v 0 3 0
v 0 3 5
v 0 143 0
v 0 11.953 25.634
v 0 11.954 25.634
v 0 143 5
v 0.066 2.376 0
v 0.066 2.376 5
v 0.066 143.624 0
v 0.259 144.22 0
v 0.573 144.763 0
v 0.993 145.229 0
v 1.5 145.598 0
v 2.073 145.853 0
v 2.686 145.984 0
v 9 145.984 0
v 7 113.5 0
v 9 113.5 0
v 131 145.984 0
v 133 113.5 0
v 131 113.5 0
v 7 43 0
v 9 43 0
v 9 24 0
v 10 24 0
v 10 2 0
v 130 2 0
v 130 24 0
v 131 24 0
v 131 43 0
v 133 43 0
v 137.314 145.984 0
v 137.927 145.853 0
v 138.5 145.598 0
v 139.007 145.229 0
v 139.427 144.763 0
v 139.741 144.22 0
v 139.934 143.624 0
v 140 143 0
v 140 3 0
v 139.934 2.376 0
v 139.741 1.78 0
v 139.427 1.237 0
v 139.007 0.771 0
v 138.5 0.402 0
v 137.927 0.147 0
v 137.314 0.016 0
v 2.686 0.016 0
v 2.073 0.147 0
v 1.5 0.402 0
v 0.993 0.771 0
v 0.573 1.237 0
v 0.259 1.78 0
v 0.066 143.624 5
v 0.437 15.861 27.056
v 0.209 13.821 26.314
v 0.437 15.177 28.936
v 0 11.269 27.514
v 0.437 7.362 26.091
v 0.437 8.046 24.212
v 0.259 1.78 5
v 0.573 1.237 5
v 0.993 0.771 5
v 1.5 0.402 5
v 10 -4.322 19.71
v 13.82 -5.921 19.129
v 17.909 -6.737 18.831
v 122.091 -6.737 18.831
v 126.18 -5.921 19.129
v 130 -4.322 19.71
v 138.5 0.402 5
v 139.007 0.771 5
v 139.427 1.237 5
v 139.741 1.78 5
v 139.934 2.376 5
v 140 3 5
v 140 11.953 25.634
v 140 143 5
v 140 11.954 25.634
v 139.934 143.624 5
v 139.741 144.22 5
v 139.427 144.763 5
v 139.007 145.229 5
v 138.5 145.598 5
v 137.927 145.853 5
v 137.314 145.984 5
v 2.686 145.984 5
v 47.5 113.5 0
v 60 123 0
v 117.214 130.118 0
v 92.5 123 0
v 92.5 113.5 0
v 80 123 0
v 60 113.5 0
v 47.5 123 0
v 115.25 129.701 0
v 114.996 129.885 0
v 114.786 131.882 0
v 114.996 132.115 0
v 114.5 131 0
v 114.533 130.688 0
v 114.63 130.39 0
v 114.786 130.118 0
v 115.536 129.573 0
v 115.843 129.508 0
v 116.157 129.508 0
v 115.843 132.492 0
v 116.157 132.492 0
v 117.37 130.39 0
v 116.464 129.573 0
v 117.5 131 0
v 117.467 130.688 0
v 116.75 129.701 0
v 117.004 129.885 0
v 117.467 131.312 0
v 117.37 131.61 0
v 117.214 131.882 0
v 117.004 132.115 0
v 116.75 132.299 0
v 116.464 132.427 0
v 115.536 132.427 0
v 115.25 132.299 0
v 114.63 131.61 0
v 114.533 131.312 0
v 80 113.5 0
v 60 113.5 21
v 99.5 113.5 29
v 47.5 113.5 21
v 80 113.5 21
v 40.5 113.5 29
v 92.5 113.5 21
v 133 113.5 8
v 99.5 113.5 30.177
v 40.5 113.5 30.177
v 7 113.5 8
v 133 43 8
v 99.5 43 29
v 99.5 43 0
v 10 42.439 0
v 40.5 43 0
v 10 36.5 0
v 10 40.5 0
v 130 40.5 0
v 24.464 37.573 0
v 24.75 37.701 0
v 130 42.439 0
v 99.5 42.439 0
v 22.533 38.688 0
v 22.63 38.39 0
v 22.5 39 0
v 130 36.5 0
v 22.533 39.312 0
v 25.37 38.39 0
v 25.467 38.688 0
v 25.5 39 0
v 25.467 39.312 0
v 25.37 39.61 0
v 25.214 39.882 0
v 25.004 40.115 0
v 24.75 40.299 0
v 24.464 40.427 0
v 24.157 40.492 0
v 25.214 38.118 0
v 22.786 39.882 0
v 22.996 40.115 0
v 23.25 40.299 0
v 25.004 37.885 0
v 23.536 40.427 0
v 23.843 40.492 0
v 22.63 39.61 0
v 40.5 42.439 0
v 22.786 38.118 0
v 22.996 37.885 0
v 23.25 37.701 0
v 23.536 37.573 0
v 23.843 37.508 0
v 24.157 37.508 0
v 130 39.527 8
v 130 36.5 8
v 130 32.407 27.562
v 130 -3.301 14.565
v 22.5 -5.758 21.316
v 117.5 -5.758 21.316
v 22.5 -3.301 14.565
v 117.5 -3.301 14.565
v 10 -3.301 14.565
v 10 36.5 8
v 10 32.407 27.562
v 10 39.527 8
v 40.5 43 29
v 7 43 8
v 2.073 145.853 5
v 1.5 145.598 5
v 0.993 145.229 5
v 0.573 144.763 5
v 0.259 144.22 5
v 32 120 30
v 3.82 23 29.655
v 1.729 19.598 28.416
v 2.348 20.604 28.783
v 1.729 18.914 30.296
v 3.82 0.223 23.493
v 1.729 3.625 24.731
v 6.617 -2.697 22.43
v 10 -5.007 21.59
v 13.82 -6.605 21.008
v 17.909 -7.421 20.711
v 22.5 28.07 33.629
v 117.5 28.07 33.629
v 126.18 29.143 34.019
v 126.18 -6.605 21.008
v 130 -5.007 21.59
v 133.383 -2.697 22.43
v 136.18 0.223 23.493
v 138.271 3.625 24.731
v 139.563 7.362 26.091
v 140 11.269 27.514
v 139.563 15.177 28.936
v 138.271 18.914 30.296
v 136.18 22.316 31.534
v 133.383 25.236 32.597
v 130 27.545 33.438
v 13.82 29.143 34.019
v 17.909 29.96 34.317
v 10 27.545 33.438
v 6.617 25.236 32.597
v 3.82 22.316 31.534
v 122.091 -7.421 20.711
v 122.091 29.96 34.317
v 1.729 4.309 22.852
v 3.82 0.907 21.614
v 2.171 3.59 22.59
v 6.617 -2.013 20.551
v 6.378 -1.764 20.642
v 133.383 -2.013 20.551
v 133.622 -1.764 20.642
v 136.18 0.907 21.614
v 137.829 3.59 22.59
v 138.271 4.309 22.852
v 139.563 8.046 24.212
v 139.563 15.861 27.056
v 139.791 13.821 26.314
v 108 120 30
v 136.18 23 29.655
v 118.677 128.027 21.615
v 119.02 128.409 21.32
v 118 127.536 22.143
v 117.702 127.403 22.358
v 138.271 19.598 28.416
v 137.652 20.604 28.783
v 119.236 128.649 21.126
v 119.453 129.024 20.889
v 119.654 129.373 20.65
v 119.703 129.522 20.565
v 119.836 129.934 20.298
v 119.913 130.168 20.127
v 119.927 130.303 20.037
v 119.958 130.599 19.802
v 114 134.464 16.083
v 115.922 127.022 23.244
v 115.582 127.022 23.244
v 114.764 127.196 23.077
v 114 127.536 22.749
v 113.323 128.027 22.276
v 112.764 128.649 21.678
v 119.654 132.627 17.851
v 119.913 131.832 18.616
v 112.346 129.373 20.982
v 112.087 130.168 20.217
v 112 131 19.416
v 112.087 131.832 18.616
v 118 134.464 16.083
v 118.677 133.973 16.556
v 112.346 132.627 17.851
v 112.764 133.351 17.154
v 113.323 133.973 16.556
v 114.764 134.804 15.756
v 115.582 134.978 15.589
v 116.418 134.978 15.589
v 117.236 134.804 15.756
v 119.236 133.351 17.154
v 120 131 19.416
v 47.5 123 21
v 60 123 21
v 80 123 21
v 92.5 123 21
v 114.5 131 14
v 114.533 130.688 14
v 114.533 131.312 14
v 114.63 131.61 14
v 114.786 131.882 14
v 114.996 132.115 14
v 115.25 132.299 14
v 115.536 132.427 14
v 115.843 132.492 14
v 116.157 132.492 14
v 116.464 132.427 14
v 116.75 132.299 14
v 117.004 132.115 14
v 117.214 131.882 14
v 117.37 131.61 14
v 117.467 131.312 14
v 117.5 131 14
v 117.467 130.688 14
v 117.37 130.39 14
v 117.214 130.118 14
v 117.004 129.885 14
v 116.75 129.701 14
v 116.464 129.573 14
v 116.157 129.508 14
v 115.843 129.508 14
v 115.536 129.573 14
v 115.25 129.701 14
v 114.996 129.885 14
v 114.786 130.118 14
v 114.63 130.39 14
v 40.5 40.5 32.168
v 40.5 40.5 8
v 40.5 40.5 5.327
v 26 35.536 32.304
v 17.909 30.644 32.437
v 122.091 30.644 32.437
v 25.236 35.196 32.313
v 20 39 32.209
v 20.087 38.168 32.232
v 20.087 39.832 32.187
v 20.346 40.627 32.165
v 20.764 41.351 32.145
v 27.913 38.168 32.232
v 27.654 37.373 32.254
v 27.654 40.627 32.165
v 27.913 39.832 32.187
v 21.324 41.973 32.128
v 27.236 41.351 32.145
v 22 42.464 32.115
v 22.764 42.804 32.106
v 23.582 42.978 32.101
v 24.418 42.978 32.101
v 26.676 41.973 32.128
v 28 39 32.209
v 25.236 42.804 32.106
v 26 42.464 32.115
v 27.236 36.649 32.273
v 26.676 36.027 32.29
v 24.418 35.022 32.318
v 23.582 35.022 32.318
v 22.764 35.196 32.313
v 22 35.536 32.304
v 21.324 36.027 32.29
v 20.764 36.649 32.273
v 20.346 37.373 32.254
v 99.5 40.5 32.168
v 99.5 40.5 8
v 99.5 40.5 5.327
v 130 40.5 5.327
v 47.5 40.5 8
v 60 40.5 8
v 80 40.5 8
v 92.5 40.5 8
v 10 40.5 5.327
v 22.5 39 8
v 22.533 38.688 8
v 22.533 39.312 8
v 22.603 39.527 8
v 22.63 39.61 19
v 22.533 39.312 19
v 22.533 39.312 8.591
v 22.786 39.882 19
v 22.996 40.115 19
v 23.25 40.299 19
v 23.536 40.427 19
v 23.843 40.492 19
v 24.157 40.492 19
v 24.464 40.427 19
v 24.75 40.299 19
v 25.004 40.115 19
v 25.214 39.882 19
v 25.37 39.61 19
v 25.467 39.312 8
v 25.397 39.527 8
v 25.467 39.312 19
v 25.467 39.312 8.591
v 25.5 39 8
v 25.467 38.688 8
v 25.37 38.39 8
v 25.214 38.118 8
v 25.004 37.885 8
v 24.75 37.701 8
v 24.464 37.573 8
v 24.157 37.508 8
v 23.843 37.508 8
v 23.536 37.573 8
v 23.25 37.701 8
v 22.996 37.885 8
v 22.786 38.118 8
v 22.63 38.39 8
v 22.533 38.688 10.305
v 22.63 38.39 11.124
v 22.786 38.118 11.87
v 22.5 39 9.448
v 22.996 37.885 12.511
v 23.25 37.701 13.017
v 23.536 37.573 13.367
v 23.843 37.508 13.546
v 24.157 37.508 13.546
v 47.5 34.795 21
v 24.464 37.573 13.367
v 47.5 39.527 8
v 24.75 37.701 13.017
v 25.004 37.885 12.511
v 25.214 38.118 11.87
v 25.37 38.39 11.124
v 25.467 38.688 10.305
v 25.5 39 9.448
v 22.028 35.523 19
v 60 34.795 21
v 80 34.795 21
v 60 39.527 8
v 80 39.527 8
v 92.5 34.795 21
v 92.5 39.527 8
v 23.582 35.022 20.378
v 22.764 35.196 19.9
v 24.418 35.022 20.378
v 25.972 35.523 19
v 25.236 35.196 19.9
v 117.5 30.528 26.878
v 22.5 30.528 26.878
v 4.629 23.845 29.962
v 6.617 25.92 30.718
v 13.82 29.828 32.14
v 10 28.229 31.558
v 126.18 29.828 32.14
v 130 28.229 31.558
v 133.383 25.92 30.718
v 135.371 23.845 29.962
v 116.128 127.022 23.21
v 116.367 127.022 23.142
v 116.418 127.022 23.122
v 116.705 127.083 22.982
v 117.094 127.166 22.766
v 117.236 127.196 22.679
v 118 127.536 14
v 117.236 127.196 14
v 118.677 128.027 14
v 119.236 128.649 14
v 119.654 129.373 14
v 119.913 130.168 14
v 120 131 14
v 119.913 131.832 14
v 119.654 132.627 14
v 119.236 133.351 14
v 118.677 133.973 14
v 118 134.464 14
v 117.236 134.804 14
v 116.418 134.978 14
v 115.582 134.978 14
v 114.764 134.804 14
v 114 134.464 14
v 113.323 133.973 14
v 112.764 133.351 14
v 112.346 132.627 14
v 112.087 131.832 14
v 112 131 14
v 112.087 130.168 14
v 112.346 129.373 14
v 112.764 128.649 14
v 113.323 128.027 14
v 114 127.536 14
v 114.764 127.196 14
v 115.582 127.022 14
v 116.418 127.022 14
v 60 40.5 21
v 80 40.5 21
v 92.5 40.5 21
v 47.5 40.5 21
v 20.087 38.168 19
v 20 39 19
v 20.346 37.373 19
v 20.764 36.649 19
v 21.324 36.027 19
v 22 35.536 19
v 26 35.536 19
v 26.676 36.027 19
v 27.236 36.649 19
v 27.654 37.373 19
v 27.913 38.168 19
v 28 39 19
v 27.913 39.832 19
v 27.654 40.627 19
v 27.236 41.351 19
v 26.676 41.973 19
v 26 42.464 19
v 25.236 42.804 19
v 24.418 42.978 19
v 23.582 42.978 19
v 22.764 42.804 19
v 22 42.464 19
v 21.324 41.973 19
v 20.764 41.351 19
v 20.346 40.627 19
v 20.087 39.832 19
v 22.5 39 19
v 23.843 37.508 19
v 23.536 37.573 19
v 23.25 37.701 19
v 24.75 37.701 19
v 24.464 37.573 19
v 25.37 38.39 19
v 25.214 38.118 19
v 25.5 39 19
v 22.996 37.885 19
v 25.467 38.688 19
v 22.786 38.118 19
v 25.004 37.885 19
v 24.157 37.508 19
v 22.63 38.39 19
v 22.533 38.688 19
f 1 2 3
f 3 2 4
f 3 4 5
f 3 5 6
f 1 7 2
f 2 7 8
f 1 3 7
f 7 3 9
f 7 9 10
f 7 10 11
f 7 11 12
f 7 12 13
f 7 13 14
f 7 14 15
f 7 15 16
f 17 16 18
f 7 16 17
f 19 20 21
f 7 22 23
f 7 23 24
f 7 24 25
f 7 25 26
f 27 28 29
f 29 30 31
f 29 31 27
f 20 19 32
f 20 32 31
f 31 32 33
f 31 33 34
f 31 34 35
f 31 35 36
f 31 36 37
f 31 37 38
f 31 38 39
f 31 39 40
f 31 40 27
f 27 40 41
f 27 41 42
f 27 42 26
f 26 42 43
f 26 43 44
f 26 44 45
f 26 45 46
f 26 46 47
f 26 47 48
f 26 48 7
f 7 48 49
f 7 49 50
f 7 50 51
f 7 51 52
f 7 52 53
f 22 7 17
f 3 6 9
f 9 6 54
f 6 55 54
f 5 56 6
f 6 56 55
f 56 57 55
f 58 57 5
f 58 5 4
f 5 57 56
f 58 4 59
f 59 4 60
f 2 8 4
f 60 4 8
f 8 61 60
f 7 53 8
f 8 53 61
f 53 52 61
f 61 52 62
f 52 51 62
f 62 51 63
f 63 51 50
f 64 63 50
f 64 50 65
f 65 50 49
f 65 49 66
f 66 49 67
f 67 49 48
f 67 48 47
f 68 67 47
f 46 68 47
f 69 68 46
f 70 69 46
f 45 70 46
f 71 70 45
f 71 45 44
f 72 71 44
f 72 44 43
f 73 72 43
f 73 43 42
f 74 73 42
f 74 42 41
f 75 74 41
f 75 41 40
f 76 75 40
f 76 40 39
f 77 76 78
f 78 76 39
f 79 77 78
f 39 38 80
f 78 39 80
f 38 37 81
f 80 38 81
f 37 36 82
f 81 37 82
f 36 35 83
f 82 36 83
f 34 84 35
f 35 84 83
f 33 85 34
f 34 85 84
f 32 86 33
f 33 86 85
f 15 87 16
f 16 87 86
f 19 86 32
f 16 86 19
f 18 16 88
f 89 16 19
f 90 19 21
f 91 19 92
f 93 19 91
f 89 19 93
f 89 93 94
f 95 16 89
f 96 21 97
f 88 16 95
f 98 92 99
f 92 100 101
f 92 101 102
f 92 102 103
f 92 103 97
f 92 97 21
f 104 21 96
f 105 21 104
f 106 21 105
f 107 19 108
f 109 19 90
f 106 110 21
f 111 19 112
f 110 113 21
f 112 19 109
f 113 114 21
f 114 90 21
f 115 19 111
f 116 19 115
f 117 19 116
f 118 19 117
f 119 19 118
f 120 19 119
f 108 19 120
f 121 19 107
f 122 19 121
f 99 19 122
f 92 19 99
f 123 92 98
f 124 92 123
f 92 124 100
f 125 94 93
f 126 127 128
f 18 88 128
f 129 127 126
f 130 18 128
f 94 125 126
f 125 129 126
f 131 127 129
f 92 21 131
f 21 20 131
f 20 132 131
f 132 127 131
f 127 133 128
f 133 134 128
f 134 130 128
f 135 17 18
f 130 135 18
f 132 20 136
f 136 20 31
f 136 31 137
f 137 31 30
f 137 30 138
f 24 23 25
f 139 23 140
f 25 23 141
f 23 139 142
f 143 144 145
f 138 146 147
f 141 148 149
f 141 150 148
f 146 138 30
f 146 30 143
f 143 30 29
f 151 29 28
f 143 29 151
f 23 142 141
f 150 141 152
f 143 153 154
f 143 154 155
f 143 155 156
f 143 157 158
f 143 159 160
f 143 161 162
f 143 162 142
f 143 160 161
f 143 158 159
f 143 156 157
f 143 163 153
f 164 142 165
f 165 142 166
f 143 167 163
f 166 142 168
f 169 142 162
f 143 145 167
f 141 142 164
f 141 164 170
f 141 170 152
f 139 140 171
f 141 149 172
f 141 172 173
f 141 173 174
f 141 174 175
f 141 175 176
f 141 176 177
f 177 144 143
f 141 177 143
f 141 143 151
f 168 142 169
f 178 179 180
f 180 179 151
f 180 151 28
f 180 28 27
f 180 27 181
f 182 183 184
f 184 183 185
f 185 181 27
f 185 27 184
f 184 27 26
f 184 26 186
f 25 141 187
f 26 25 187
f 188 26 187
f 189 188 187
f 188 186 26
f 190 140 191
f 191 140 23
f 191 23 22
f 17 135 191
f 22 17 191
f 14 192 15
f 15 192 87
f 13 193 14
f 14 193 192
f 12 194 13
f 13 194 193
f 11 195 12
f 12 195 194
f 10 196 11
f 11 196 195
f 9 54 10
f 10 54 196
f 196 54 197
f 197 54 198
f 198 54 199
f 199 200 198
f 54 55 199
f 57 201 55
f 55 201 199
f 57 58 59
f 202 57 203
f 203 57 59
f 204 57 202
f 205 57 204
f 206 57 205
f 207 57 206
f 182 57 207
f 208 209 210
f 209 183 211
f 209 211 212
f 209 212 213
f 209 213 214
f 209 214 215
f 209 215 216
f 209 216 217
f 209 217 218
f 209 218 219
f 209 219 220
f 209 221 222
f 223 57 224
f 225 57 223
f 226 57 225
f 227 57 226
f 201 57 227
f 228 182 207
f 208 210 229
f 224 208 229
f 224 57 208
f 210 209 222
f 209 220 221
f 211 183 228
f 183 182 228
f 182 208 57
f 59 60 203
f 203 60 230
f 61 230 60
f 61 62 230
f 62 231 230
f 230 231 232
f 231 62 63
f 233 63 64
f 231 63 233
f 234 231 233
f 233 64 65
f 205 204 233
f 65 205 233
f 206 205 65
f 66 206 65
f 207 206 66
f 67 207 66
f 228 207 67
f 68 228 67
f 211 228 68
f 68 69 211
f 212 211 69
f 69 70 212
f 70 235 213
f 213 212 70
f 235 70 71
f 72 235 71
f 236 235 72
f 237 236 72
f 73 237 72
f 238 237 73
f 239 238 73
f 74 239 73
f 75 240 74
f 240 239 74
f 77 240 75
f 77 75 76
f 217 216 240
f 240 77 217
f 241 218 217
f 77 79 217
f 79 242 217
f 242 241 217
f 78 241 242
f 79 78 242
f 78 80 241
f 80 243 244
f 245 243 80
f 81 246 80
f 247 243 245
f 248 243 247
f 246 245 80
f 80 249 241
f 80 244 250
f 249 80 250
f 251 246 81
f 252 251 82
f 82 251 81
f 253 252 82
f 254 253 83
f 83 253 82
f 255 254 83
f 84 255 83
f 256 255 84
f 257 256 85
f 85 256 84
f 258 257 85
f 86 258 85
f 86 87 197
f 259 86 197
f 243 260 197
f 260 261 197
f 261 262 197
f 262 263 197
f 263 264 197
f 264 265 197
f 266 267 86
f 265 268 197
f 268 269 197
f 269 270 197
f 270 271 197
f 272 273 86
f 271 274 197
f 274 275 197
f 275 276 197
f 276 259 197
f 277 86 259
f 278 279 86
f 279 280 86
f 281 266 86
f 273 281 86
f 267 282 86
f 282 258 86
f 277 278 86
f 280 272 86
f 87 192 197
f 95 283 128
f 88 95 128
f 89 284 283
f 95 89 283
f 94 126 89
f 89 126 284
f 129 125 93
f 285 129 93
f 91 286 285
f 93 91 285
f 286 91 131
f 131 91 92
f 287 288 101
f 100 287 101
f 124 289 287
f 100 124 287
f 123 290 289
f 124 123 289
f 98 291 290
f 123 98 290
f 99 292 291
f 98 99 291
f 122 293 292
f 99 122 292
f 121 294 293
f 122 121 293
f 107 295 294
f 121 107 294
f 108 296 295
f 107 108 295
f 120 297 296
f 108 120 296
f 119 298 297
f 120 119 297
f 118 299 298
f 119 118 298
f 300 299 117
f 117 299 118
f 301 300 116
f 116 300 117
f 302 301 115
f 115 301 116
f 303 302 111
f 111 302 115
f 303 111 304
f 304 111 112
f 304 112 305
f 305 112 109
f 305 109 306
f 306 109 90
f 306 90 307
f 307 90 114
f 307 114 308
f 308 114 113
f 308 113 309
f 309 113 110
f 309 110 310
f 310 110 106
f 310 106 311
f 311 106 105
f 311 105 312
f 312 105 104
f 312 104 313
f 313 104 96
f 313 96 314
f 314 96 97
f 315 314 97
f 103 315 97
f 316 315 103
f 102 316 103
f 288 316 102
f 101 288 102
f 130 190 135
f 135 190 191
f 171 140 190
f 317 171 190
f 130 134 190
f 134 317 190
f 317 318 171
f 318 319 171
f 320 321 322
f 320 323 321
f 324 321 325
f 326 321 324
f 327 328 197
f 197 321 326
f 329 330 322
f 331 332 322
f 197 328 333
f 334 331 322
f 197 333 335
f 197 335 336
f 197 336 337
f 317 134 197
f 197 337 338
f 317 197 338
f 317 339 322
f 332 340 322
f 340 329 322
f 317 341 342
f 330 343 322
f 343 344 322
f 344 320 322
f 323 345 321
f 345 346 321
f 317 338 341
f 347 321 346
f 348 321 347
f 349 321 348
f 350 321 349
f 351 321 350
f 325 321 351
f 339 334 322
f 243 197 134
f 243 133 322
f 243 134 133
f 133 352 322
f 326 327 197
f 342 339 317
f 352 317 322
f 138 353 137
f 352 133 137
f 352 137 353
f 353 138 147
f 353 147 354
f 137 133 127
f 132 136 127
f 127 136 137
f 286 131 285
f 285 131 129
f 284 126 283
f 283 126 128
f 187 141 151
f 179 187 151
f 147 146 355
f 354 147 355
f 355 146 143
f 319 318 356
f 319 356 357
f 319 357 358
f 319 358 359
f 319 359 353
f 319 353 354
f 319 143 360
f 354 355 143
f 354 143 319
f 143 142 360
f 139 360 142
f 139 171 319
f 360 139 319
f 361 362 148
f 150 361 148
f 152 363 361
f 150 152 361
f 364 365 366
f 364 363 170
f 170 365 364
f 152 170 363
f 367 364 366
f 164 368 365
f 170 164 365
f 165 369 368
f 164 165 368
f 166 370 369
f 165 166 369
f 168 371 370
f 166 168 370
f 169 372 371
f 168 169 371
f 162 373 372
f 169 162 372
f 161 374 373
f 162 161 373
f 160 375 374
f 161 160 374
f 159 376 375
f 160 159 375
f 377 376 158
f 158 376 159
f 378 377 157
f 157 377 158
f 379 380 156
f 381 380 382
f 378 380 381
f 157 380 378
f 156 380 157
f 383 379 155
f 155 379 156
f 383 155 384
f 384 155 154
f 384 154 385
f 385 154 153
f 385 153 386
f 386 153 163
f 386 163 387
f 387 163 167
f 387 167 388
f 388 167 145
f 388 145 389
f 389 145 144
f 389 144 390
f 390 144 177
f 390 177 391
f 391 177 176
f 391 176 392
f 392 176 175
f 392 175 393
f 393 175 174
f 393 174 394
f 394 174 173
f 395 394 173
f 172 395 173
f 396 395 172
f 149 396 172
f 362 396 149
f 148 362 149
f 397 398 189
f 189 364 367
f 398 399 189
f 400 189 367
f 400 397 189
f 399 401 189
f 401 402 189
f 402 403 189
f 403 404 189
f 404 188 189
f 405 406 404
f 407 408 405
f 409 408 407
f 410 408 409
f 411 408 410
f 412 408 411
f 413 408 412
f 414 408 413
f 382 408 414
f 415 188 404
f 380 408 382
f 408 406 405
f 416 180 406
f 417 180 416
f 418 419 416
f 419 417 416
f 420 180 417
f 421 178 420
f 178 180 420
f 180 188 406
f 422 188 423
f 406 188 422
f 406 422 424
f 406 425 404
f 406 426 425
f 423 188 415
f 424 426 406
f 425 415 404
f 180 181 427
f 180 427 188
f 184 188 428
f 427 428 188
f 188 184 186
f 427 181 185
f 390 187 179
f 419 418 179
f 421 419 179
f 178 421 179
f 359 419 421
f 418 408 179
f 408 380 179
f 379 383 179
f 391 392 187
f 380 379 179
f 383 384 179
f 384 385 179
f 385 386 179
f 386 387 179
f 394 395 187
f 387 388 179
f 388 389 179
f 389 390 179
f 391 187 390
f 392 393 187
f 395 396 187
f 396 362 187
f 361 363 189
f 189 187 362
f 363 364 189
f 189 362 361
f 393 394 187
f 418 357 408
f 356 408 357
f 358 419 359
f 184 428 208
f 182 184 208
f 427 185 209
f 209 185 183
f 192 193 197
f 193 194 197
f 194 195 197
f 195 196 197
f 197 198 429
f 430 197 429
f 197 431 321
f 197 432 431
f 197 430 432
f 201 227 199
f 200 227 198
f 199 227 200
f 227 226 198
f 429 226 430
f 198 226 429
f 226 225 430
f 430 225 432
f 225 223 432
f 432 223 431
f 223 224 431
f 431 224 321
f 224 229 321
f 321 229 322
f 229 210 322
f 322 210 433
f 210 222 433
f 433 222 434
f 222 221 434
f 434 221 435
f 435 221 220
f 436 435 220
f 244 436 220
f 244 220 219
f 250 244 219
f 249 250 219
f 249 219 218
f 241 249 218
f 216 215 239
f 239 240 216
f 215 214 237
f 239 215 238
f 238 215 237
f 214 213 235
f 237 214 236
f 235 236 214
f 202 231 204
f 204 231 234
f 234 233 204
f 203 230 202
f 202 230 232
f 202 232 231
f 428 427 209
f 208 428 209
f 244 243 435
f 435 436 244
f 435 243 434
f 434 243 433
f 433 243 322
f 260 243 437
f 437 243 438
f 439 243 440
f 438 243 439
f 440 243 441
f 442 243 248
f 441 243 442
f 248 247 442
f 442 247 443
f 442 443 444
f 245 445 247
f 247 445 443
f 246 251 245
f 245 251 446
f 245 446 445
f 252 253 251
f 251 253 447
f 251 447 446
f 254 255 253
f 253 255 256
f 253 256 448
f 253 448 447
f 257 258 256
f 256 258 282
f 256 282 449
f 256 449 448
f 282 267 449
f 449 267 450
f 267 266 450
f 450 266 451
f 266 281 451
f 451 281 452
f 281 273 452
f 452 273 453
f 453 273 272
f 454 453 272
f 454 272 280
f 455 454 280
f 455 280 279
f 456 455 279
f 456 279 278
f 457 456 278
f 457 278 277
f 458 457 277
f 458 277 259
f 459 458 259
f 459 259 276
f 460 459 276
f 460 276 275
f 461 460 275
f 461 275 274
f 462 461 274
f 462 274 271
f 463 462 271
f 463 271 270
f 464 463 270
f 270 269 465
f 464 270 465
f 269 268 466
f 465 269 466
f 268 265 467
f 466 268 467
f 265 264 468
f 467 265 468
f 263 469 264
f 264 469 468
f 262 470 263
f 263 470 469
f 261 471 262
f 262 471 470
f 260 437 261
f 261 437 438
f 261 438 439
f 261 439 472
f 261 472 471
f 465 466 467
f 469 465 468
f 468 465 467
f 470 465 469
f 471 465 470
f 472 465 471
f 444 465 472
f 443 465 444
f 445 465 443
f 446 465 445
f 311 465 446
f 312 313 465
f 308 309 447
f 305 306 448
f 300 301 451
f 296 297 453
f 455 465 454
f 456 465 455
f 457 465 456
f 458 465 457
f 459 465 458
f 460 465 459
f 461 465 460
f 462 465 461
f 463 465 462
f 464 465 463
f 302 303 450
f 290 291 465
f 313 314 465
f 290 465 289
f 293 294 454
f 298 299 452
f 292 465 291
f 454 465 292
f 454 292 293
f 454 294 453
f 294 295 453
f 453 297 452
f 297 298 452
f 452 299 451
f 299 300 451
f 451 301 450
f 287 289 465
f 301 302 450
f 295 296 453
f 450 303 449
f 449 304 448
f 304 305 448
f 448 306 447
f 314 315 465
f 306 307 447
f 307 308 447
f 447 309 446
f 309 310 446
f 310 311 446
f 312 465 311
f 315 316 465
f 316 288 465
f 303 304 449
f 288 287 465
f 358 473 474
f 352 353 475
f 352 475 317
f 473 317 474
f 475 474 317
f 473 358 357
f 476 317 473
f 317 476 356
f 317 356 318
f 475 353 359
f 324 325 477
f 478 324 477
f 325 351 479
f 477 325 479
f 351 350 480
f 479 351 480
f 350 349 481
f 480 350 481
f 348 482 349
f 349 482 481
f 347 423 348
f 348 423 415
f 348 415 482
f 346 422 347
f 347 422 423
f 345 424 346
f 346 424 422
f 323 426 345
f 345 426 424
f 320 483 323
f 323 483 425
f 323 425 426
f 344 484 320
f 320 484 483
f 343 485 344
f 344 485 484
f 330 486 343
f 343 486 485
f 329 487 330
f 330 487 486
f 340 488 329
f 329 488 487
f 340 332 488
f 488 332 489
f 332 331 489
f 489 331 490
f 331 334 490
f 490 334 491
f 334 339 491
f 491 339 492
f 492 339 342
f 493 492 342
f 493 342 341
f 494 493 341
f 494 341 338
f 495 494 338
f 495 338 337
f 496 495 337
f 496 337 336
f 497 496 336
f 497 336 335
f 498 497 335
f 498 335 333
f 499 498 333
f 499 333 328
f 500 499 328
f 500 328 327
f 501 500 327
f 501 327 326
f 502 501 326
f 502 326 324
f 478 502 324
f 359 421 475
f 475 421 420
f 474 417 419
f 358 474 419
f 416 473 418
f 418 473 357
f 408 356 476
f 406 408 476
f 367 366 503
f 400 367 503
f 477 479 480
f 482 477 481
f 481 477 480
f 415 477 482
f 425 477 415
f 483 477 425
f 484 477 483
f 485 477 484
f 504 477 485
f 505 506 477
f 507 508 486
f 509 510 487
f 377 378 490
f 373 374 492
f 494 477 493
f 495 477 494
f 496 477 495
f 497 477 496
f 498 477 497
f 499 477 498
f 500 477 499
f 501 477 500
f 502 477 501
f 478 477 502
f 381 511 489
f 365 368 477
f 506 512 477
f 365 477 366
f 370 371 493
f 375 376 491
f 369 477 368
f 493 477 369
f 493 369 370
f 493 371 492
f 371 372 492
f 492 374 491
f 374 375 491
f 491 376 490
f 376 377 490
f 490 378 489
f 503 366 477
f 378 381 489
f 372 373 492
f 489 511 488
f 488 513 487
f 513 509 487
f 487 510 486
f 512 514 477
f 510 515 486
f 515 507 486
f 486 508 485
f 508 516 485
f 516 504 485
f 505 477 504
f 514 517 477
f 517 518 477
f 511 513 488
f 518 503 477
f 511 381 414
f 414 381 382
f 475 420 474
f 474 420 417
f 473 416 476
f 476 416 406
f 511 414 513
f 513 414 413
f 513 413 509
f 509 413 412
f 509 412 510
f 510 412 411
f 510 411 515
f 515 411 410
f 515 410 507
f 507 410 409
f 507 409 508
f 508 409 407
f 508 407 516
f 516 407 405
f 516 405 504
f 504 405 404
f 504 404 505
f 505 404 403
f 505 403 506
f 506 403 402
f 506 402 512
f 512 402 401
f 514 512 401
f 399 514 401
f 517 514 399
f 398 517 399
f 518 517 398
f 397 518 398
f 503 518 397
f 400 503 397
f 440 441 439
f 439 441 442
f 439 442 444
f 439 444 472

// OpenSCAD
$fn=30;

module visor(xdim, zdim, rdim) {
	hull() {
		translate([rdim, rdim, 0]) cylinder(r=rdim,h=zdim);
		translate([xdim-rdim,rdim,0]) cylinder(r=rdim,h=zdim);
	}
}

module baseplate(xdim_base,ydim_base,zdim_base,rdim_base) {	
	hull() {
		visor(xdim_base,zdim_base,rdim_base);
		translate([0,ydim_base,0]) visor(xdim_base,zdim_base,rdim_base);
	}
}

module keypad_part(xdim,ydim,zdim,length) {
	translate([length/2-xdim/2,length/2-ydim/2,0]) cube([xdim,ydim,zdim]);
}

module basebody() {
	hull() {
		hull() {
			baseplate(length,length,5,3);
			rotate([20,0,0]) visor(length,20,20);
		}
		keypad_part(76,100,30,length);
	}
	rotate([20,0,0]) visor(length,22,20);
}

module mounting_points() {
	translate([length/2-old_plate[0]/2,length/2-old_plate[1]/2+15,-1]) {
		cube(old_plate);
		
		translate([15,15,-10]) {
			cylinder(r=1.5,h=100);
			translate([0,0,30])
			cylinder(r=4,h=100);	
		}
	
		translate([old_plate[0]-15,old_plate[1]-15,-10]) {
			cylinder(r=1.5,h=100);	
			translate([0,0,25])
			cylinder(r=4,h=100);	
		}
	}
}

module rfid_reader() {
	
	rotate([-6,-40,0])
	translate([7,45,-25])
	cube([40,70,30]);

}

module rfid_hull(length) {
	color("red"){ 
		hull() {
			translate([7,43,0])
			cube([2,70.5,8]);
		
			translate([38.5,43,0])
			cube([2,70.5,2]);
		
			translate([40.5,43,27])
			cube([2,70.5,2]);
		}

		hull() {
			translate([length-7,43,0])
			cube([2,70.5,8]);
		
			translate([length-38.5,43,0])
			cube([2,70.5,2]);
		
			translate([length-40.5,43,27])
			cube([2,70.5,2]);
		}

	}
}


module display_cable_pipe() {
	translate([110,50,-1])
	rotate([90,0,0])
	cylinder(r=7,h=20);
}


length = 140;
keypad_size = [59,73,100];
keypad_mounting_space = [45,92,21];
keypad_mounting_space_center = [20,92,21];

display_size = [95,36,100];
display_mounting_space = [120,38,35.5];

old_plate = [122,122,1];

difference() {
	union() {
		difference() {
			basebody();
			translate([length/2-keypad_size[0]/2,length/2-keypad_size[1]/2+7,0]) cube(keypad_size);
		
			difference() {
				translate([length/2-keypad_mounting_space[0]/2,length/2-keypad_mounting_space[1]/2+7,0]) cube(keypad_mounting_space);
				translate([length/2-keypad_mounting_space_center[0]/2,length/2-keypad_mounting_space_center[1]/2+7,0]) cube(keypad_mounting_space_center);
			}
		
			translate([length/2-display_size[0]/2,2,0]) rotate([20,0,0]) translate([0,0,-20])
			cube(display_size);
		
			translate([length/2-display_mounting_space[0]/2,2,0]) rotate([20,0,0]) translate([0,0,-20])
			cube(display_mounting_space);
		
		}
	
	translate([0,36.5,0])
	cube([length,4,8]);
	}

	rfid_hull(length-2);
	mounting_points();
	//display_cable_pipe();	
}
	

	
